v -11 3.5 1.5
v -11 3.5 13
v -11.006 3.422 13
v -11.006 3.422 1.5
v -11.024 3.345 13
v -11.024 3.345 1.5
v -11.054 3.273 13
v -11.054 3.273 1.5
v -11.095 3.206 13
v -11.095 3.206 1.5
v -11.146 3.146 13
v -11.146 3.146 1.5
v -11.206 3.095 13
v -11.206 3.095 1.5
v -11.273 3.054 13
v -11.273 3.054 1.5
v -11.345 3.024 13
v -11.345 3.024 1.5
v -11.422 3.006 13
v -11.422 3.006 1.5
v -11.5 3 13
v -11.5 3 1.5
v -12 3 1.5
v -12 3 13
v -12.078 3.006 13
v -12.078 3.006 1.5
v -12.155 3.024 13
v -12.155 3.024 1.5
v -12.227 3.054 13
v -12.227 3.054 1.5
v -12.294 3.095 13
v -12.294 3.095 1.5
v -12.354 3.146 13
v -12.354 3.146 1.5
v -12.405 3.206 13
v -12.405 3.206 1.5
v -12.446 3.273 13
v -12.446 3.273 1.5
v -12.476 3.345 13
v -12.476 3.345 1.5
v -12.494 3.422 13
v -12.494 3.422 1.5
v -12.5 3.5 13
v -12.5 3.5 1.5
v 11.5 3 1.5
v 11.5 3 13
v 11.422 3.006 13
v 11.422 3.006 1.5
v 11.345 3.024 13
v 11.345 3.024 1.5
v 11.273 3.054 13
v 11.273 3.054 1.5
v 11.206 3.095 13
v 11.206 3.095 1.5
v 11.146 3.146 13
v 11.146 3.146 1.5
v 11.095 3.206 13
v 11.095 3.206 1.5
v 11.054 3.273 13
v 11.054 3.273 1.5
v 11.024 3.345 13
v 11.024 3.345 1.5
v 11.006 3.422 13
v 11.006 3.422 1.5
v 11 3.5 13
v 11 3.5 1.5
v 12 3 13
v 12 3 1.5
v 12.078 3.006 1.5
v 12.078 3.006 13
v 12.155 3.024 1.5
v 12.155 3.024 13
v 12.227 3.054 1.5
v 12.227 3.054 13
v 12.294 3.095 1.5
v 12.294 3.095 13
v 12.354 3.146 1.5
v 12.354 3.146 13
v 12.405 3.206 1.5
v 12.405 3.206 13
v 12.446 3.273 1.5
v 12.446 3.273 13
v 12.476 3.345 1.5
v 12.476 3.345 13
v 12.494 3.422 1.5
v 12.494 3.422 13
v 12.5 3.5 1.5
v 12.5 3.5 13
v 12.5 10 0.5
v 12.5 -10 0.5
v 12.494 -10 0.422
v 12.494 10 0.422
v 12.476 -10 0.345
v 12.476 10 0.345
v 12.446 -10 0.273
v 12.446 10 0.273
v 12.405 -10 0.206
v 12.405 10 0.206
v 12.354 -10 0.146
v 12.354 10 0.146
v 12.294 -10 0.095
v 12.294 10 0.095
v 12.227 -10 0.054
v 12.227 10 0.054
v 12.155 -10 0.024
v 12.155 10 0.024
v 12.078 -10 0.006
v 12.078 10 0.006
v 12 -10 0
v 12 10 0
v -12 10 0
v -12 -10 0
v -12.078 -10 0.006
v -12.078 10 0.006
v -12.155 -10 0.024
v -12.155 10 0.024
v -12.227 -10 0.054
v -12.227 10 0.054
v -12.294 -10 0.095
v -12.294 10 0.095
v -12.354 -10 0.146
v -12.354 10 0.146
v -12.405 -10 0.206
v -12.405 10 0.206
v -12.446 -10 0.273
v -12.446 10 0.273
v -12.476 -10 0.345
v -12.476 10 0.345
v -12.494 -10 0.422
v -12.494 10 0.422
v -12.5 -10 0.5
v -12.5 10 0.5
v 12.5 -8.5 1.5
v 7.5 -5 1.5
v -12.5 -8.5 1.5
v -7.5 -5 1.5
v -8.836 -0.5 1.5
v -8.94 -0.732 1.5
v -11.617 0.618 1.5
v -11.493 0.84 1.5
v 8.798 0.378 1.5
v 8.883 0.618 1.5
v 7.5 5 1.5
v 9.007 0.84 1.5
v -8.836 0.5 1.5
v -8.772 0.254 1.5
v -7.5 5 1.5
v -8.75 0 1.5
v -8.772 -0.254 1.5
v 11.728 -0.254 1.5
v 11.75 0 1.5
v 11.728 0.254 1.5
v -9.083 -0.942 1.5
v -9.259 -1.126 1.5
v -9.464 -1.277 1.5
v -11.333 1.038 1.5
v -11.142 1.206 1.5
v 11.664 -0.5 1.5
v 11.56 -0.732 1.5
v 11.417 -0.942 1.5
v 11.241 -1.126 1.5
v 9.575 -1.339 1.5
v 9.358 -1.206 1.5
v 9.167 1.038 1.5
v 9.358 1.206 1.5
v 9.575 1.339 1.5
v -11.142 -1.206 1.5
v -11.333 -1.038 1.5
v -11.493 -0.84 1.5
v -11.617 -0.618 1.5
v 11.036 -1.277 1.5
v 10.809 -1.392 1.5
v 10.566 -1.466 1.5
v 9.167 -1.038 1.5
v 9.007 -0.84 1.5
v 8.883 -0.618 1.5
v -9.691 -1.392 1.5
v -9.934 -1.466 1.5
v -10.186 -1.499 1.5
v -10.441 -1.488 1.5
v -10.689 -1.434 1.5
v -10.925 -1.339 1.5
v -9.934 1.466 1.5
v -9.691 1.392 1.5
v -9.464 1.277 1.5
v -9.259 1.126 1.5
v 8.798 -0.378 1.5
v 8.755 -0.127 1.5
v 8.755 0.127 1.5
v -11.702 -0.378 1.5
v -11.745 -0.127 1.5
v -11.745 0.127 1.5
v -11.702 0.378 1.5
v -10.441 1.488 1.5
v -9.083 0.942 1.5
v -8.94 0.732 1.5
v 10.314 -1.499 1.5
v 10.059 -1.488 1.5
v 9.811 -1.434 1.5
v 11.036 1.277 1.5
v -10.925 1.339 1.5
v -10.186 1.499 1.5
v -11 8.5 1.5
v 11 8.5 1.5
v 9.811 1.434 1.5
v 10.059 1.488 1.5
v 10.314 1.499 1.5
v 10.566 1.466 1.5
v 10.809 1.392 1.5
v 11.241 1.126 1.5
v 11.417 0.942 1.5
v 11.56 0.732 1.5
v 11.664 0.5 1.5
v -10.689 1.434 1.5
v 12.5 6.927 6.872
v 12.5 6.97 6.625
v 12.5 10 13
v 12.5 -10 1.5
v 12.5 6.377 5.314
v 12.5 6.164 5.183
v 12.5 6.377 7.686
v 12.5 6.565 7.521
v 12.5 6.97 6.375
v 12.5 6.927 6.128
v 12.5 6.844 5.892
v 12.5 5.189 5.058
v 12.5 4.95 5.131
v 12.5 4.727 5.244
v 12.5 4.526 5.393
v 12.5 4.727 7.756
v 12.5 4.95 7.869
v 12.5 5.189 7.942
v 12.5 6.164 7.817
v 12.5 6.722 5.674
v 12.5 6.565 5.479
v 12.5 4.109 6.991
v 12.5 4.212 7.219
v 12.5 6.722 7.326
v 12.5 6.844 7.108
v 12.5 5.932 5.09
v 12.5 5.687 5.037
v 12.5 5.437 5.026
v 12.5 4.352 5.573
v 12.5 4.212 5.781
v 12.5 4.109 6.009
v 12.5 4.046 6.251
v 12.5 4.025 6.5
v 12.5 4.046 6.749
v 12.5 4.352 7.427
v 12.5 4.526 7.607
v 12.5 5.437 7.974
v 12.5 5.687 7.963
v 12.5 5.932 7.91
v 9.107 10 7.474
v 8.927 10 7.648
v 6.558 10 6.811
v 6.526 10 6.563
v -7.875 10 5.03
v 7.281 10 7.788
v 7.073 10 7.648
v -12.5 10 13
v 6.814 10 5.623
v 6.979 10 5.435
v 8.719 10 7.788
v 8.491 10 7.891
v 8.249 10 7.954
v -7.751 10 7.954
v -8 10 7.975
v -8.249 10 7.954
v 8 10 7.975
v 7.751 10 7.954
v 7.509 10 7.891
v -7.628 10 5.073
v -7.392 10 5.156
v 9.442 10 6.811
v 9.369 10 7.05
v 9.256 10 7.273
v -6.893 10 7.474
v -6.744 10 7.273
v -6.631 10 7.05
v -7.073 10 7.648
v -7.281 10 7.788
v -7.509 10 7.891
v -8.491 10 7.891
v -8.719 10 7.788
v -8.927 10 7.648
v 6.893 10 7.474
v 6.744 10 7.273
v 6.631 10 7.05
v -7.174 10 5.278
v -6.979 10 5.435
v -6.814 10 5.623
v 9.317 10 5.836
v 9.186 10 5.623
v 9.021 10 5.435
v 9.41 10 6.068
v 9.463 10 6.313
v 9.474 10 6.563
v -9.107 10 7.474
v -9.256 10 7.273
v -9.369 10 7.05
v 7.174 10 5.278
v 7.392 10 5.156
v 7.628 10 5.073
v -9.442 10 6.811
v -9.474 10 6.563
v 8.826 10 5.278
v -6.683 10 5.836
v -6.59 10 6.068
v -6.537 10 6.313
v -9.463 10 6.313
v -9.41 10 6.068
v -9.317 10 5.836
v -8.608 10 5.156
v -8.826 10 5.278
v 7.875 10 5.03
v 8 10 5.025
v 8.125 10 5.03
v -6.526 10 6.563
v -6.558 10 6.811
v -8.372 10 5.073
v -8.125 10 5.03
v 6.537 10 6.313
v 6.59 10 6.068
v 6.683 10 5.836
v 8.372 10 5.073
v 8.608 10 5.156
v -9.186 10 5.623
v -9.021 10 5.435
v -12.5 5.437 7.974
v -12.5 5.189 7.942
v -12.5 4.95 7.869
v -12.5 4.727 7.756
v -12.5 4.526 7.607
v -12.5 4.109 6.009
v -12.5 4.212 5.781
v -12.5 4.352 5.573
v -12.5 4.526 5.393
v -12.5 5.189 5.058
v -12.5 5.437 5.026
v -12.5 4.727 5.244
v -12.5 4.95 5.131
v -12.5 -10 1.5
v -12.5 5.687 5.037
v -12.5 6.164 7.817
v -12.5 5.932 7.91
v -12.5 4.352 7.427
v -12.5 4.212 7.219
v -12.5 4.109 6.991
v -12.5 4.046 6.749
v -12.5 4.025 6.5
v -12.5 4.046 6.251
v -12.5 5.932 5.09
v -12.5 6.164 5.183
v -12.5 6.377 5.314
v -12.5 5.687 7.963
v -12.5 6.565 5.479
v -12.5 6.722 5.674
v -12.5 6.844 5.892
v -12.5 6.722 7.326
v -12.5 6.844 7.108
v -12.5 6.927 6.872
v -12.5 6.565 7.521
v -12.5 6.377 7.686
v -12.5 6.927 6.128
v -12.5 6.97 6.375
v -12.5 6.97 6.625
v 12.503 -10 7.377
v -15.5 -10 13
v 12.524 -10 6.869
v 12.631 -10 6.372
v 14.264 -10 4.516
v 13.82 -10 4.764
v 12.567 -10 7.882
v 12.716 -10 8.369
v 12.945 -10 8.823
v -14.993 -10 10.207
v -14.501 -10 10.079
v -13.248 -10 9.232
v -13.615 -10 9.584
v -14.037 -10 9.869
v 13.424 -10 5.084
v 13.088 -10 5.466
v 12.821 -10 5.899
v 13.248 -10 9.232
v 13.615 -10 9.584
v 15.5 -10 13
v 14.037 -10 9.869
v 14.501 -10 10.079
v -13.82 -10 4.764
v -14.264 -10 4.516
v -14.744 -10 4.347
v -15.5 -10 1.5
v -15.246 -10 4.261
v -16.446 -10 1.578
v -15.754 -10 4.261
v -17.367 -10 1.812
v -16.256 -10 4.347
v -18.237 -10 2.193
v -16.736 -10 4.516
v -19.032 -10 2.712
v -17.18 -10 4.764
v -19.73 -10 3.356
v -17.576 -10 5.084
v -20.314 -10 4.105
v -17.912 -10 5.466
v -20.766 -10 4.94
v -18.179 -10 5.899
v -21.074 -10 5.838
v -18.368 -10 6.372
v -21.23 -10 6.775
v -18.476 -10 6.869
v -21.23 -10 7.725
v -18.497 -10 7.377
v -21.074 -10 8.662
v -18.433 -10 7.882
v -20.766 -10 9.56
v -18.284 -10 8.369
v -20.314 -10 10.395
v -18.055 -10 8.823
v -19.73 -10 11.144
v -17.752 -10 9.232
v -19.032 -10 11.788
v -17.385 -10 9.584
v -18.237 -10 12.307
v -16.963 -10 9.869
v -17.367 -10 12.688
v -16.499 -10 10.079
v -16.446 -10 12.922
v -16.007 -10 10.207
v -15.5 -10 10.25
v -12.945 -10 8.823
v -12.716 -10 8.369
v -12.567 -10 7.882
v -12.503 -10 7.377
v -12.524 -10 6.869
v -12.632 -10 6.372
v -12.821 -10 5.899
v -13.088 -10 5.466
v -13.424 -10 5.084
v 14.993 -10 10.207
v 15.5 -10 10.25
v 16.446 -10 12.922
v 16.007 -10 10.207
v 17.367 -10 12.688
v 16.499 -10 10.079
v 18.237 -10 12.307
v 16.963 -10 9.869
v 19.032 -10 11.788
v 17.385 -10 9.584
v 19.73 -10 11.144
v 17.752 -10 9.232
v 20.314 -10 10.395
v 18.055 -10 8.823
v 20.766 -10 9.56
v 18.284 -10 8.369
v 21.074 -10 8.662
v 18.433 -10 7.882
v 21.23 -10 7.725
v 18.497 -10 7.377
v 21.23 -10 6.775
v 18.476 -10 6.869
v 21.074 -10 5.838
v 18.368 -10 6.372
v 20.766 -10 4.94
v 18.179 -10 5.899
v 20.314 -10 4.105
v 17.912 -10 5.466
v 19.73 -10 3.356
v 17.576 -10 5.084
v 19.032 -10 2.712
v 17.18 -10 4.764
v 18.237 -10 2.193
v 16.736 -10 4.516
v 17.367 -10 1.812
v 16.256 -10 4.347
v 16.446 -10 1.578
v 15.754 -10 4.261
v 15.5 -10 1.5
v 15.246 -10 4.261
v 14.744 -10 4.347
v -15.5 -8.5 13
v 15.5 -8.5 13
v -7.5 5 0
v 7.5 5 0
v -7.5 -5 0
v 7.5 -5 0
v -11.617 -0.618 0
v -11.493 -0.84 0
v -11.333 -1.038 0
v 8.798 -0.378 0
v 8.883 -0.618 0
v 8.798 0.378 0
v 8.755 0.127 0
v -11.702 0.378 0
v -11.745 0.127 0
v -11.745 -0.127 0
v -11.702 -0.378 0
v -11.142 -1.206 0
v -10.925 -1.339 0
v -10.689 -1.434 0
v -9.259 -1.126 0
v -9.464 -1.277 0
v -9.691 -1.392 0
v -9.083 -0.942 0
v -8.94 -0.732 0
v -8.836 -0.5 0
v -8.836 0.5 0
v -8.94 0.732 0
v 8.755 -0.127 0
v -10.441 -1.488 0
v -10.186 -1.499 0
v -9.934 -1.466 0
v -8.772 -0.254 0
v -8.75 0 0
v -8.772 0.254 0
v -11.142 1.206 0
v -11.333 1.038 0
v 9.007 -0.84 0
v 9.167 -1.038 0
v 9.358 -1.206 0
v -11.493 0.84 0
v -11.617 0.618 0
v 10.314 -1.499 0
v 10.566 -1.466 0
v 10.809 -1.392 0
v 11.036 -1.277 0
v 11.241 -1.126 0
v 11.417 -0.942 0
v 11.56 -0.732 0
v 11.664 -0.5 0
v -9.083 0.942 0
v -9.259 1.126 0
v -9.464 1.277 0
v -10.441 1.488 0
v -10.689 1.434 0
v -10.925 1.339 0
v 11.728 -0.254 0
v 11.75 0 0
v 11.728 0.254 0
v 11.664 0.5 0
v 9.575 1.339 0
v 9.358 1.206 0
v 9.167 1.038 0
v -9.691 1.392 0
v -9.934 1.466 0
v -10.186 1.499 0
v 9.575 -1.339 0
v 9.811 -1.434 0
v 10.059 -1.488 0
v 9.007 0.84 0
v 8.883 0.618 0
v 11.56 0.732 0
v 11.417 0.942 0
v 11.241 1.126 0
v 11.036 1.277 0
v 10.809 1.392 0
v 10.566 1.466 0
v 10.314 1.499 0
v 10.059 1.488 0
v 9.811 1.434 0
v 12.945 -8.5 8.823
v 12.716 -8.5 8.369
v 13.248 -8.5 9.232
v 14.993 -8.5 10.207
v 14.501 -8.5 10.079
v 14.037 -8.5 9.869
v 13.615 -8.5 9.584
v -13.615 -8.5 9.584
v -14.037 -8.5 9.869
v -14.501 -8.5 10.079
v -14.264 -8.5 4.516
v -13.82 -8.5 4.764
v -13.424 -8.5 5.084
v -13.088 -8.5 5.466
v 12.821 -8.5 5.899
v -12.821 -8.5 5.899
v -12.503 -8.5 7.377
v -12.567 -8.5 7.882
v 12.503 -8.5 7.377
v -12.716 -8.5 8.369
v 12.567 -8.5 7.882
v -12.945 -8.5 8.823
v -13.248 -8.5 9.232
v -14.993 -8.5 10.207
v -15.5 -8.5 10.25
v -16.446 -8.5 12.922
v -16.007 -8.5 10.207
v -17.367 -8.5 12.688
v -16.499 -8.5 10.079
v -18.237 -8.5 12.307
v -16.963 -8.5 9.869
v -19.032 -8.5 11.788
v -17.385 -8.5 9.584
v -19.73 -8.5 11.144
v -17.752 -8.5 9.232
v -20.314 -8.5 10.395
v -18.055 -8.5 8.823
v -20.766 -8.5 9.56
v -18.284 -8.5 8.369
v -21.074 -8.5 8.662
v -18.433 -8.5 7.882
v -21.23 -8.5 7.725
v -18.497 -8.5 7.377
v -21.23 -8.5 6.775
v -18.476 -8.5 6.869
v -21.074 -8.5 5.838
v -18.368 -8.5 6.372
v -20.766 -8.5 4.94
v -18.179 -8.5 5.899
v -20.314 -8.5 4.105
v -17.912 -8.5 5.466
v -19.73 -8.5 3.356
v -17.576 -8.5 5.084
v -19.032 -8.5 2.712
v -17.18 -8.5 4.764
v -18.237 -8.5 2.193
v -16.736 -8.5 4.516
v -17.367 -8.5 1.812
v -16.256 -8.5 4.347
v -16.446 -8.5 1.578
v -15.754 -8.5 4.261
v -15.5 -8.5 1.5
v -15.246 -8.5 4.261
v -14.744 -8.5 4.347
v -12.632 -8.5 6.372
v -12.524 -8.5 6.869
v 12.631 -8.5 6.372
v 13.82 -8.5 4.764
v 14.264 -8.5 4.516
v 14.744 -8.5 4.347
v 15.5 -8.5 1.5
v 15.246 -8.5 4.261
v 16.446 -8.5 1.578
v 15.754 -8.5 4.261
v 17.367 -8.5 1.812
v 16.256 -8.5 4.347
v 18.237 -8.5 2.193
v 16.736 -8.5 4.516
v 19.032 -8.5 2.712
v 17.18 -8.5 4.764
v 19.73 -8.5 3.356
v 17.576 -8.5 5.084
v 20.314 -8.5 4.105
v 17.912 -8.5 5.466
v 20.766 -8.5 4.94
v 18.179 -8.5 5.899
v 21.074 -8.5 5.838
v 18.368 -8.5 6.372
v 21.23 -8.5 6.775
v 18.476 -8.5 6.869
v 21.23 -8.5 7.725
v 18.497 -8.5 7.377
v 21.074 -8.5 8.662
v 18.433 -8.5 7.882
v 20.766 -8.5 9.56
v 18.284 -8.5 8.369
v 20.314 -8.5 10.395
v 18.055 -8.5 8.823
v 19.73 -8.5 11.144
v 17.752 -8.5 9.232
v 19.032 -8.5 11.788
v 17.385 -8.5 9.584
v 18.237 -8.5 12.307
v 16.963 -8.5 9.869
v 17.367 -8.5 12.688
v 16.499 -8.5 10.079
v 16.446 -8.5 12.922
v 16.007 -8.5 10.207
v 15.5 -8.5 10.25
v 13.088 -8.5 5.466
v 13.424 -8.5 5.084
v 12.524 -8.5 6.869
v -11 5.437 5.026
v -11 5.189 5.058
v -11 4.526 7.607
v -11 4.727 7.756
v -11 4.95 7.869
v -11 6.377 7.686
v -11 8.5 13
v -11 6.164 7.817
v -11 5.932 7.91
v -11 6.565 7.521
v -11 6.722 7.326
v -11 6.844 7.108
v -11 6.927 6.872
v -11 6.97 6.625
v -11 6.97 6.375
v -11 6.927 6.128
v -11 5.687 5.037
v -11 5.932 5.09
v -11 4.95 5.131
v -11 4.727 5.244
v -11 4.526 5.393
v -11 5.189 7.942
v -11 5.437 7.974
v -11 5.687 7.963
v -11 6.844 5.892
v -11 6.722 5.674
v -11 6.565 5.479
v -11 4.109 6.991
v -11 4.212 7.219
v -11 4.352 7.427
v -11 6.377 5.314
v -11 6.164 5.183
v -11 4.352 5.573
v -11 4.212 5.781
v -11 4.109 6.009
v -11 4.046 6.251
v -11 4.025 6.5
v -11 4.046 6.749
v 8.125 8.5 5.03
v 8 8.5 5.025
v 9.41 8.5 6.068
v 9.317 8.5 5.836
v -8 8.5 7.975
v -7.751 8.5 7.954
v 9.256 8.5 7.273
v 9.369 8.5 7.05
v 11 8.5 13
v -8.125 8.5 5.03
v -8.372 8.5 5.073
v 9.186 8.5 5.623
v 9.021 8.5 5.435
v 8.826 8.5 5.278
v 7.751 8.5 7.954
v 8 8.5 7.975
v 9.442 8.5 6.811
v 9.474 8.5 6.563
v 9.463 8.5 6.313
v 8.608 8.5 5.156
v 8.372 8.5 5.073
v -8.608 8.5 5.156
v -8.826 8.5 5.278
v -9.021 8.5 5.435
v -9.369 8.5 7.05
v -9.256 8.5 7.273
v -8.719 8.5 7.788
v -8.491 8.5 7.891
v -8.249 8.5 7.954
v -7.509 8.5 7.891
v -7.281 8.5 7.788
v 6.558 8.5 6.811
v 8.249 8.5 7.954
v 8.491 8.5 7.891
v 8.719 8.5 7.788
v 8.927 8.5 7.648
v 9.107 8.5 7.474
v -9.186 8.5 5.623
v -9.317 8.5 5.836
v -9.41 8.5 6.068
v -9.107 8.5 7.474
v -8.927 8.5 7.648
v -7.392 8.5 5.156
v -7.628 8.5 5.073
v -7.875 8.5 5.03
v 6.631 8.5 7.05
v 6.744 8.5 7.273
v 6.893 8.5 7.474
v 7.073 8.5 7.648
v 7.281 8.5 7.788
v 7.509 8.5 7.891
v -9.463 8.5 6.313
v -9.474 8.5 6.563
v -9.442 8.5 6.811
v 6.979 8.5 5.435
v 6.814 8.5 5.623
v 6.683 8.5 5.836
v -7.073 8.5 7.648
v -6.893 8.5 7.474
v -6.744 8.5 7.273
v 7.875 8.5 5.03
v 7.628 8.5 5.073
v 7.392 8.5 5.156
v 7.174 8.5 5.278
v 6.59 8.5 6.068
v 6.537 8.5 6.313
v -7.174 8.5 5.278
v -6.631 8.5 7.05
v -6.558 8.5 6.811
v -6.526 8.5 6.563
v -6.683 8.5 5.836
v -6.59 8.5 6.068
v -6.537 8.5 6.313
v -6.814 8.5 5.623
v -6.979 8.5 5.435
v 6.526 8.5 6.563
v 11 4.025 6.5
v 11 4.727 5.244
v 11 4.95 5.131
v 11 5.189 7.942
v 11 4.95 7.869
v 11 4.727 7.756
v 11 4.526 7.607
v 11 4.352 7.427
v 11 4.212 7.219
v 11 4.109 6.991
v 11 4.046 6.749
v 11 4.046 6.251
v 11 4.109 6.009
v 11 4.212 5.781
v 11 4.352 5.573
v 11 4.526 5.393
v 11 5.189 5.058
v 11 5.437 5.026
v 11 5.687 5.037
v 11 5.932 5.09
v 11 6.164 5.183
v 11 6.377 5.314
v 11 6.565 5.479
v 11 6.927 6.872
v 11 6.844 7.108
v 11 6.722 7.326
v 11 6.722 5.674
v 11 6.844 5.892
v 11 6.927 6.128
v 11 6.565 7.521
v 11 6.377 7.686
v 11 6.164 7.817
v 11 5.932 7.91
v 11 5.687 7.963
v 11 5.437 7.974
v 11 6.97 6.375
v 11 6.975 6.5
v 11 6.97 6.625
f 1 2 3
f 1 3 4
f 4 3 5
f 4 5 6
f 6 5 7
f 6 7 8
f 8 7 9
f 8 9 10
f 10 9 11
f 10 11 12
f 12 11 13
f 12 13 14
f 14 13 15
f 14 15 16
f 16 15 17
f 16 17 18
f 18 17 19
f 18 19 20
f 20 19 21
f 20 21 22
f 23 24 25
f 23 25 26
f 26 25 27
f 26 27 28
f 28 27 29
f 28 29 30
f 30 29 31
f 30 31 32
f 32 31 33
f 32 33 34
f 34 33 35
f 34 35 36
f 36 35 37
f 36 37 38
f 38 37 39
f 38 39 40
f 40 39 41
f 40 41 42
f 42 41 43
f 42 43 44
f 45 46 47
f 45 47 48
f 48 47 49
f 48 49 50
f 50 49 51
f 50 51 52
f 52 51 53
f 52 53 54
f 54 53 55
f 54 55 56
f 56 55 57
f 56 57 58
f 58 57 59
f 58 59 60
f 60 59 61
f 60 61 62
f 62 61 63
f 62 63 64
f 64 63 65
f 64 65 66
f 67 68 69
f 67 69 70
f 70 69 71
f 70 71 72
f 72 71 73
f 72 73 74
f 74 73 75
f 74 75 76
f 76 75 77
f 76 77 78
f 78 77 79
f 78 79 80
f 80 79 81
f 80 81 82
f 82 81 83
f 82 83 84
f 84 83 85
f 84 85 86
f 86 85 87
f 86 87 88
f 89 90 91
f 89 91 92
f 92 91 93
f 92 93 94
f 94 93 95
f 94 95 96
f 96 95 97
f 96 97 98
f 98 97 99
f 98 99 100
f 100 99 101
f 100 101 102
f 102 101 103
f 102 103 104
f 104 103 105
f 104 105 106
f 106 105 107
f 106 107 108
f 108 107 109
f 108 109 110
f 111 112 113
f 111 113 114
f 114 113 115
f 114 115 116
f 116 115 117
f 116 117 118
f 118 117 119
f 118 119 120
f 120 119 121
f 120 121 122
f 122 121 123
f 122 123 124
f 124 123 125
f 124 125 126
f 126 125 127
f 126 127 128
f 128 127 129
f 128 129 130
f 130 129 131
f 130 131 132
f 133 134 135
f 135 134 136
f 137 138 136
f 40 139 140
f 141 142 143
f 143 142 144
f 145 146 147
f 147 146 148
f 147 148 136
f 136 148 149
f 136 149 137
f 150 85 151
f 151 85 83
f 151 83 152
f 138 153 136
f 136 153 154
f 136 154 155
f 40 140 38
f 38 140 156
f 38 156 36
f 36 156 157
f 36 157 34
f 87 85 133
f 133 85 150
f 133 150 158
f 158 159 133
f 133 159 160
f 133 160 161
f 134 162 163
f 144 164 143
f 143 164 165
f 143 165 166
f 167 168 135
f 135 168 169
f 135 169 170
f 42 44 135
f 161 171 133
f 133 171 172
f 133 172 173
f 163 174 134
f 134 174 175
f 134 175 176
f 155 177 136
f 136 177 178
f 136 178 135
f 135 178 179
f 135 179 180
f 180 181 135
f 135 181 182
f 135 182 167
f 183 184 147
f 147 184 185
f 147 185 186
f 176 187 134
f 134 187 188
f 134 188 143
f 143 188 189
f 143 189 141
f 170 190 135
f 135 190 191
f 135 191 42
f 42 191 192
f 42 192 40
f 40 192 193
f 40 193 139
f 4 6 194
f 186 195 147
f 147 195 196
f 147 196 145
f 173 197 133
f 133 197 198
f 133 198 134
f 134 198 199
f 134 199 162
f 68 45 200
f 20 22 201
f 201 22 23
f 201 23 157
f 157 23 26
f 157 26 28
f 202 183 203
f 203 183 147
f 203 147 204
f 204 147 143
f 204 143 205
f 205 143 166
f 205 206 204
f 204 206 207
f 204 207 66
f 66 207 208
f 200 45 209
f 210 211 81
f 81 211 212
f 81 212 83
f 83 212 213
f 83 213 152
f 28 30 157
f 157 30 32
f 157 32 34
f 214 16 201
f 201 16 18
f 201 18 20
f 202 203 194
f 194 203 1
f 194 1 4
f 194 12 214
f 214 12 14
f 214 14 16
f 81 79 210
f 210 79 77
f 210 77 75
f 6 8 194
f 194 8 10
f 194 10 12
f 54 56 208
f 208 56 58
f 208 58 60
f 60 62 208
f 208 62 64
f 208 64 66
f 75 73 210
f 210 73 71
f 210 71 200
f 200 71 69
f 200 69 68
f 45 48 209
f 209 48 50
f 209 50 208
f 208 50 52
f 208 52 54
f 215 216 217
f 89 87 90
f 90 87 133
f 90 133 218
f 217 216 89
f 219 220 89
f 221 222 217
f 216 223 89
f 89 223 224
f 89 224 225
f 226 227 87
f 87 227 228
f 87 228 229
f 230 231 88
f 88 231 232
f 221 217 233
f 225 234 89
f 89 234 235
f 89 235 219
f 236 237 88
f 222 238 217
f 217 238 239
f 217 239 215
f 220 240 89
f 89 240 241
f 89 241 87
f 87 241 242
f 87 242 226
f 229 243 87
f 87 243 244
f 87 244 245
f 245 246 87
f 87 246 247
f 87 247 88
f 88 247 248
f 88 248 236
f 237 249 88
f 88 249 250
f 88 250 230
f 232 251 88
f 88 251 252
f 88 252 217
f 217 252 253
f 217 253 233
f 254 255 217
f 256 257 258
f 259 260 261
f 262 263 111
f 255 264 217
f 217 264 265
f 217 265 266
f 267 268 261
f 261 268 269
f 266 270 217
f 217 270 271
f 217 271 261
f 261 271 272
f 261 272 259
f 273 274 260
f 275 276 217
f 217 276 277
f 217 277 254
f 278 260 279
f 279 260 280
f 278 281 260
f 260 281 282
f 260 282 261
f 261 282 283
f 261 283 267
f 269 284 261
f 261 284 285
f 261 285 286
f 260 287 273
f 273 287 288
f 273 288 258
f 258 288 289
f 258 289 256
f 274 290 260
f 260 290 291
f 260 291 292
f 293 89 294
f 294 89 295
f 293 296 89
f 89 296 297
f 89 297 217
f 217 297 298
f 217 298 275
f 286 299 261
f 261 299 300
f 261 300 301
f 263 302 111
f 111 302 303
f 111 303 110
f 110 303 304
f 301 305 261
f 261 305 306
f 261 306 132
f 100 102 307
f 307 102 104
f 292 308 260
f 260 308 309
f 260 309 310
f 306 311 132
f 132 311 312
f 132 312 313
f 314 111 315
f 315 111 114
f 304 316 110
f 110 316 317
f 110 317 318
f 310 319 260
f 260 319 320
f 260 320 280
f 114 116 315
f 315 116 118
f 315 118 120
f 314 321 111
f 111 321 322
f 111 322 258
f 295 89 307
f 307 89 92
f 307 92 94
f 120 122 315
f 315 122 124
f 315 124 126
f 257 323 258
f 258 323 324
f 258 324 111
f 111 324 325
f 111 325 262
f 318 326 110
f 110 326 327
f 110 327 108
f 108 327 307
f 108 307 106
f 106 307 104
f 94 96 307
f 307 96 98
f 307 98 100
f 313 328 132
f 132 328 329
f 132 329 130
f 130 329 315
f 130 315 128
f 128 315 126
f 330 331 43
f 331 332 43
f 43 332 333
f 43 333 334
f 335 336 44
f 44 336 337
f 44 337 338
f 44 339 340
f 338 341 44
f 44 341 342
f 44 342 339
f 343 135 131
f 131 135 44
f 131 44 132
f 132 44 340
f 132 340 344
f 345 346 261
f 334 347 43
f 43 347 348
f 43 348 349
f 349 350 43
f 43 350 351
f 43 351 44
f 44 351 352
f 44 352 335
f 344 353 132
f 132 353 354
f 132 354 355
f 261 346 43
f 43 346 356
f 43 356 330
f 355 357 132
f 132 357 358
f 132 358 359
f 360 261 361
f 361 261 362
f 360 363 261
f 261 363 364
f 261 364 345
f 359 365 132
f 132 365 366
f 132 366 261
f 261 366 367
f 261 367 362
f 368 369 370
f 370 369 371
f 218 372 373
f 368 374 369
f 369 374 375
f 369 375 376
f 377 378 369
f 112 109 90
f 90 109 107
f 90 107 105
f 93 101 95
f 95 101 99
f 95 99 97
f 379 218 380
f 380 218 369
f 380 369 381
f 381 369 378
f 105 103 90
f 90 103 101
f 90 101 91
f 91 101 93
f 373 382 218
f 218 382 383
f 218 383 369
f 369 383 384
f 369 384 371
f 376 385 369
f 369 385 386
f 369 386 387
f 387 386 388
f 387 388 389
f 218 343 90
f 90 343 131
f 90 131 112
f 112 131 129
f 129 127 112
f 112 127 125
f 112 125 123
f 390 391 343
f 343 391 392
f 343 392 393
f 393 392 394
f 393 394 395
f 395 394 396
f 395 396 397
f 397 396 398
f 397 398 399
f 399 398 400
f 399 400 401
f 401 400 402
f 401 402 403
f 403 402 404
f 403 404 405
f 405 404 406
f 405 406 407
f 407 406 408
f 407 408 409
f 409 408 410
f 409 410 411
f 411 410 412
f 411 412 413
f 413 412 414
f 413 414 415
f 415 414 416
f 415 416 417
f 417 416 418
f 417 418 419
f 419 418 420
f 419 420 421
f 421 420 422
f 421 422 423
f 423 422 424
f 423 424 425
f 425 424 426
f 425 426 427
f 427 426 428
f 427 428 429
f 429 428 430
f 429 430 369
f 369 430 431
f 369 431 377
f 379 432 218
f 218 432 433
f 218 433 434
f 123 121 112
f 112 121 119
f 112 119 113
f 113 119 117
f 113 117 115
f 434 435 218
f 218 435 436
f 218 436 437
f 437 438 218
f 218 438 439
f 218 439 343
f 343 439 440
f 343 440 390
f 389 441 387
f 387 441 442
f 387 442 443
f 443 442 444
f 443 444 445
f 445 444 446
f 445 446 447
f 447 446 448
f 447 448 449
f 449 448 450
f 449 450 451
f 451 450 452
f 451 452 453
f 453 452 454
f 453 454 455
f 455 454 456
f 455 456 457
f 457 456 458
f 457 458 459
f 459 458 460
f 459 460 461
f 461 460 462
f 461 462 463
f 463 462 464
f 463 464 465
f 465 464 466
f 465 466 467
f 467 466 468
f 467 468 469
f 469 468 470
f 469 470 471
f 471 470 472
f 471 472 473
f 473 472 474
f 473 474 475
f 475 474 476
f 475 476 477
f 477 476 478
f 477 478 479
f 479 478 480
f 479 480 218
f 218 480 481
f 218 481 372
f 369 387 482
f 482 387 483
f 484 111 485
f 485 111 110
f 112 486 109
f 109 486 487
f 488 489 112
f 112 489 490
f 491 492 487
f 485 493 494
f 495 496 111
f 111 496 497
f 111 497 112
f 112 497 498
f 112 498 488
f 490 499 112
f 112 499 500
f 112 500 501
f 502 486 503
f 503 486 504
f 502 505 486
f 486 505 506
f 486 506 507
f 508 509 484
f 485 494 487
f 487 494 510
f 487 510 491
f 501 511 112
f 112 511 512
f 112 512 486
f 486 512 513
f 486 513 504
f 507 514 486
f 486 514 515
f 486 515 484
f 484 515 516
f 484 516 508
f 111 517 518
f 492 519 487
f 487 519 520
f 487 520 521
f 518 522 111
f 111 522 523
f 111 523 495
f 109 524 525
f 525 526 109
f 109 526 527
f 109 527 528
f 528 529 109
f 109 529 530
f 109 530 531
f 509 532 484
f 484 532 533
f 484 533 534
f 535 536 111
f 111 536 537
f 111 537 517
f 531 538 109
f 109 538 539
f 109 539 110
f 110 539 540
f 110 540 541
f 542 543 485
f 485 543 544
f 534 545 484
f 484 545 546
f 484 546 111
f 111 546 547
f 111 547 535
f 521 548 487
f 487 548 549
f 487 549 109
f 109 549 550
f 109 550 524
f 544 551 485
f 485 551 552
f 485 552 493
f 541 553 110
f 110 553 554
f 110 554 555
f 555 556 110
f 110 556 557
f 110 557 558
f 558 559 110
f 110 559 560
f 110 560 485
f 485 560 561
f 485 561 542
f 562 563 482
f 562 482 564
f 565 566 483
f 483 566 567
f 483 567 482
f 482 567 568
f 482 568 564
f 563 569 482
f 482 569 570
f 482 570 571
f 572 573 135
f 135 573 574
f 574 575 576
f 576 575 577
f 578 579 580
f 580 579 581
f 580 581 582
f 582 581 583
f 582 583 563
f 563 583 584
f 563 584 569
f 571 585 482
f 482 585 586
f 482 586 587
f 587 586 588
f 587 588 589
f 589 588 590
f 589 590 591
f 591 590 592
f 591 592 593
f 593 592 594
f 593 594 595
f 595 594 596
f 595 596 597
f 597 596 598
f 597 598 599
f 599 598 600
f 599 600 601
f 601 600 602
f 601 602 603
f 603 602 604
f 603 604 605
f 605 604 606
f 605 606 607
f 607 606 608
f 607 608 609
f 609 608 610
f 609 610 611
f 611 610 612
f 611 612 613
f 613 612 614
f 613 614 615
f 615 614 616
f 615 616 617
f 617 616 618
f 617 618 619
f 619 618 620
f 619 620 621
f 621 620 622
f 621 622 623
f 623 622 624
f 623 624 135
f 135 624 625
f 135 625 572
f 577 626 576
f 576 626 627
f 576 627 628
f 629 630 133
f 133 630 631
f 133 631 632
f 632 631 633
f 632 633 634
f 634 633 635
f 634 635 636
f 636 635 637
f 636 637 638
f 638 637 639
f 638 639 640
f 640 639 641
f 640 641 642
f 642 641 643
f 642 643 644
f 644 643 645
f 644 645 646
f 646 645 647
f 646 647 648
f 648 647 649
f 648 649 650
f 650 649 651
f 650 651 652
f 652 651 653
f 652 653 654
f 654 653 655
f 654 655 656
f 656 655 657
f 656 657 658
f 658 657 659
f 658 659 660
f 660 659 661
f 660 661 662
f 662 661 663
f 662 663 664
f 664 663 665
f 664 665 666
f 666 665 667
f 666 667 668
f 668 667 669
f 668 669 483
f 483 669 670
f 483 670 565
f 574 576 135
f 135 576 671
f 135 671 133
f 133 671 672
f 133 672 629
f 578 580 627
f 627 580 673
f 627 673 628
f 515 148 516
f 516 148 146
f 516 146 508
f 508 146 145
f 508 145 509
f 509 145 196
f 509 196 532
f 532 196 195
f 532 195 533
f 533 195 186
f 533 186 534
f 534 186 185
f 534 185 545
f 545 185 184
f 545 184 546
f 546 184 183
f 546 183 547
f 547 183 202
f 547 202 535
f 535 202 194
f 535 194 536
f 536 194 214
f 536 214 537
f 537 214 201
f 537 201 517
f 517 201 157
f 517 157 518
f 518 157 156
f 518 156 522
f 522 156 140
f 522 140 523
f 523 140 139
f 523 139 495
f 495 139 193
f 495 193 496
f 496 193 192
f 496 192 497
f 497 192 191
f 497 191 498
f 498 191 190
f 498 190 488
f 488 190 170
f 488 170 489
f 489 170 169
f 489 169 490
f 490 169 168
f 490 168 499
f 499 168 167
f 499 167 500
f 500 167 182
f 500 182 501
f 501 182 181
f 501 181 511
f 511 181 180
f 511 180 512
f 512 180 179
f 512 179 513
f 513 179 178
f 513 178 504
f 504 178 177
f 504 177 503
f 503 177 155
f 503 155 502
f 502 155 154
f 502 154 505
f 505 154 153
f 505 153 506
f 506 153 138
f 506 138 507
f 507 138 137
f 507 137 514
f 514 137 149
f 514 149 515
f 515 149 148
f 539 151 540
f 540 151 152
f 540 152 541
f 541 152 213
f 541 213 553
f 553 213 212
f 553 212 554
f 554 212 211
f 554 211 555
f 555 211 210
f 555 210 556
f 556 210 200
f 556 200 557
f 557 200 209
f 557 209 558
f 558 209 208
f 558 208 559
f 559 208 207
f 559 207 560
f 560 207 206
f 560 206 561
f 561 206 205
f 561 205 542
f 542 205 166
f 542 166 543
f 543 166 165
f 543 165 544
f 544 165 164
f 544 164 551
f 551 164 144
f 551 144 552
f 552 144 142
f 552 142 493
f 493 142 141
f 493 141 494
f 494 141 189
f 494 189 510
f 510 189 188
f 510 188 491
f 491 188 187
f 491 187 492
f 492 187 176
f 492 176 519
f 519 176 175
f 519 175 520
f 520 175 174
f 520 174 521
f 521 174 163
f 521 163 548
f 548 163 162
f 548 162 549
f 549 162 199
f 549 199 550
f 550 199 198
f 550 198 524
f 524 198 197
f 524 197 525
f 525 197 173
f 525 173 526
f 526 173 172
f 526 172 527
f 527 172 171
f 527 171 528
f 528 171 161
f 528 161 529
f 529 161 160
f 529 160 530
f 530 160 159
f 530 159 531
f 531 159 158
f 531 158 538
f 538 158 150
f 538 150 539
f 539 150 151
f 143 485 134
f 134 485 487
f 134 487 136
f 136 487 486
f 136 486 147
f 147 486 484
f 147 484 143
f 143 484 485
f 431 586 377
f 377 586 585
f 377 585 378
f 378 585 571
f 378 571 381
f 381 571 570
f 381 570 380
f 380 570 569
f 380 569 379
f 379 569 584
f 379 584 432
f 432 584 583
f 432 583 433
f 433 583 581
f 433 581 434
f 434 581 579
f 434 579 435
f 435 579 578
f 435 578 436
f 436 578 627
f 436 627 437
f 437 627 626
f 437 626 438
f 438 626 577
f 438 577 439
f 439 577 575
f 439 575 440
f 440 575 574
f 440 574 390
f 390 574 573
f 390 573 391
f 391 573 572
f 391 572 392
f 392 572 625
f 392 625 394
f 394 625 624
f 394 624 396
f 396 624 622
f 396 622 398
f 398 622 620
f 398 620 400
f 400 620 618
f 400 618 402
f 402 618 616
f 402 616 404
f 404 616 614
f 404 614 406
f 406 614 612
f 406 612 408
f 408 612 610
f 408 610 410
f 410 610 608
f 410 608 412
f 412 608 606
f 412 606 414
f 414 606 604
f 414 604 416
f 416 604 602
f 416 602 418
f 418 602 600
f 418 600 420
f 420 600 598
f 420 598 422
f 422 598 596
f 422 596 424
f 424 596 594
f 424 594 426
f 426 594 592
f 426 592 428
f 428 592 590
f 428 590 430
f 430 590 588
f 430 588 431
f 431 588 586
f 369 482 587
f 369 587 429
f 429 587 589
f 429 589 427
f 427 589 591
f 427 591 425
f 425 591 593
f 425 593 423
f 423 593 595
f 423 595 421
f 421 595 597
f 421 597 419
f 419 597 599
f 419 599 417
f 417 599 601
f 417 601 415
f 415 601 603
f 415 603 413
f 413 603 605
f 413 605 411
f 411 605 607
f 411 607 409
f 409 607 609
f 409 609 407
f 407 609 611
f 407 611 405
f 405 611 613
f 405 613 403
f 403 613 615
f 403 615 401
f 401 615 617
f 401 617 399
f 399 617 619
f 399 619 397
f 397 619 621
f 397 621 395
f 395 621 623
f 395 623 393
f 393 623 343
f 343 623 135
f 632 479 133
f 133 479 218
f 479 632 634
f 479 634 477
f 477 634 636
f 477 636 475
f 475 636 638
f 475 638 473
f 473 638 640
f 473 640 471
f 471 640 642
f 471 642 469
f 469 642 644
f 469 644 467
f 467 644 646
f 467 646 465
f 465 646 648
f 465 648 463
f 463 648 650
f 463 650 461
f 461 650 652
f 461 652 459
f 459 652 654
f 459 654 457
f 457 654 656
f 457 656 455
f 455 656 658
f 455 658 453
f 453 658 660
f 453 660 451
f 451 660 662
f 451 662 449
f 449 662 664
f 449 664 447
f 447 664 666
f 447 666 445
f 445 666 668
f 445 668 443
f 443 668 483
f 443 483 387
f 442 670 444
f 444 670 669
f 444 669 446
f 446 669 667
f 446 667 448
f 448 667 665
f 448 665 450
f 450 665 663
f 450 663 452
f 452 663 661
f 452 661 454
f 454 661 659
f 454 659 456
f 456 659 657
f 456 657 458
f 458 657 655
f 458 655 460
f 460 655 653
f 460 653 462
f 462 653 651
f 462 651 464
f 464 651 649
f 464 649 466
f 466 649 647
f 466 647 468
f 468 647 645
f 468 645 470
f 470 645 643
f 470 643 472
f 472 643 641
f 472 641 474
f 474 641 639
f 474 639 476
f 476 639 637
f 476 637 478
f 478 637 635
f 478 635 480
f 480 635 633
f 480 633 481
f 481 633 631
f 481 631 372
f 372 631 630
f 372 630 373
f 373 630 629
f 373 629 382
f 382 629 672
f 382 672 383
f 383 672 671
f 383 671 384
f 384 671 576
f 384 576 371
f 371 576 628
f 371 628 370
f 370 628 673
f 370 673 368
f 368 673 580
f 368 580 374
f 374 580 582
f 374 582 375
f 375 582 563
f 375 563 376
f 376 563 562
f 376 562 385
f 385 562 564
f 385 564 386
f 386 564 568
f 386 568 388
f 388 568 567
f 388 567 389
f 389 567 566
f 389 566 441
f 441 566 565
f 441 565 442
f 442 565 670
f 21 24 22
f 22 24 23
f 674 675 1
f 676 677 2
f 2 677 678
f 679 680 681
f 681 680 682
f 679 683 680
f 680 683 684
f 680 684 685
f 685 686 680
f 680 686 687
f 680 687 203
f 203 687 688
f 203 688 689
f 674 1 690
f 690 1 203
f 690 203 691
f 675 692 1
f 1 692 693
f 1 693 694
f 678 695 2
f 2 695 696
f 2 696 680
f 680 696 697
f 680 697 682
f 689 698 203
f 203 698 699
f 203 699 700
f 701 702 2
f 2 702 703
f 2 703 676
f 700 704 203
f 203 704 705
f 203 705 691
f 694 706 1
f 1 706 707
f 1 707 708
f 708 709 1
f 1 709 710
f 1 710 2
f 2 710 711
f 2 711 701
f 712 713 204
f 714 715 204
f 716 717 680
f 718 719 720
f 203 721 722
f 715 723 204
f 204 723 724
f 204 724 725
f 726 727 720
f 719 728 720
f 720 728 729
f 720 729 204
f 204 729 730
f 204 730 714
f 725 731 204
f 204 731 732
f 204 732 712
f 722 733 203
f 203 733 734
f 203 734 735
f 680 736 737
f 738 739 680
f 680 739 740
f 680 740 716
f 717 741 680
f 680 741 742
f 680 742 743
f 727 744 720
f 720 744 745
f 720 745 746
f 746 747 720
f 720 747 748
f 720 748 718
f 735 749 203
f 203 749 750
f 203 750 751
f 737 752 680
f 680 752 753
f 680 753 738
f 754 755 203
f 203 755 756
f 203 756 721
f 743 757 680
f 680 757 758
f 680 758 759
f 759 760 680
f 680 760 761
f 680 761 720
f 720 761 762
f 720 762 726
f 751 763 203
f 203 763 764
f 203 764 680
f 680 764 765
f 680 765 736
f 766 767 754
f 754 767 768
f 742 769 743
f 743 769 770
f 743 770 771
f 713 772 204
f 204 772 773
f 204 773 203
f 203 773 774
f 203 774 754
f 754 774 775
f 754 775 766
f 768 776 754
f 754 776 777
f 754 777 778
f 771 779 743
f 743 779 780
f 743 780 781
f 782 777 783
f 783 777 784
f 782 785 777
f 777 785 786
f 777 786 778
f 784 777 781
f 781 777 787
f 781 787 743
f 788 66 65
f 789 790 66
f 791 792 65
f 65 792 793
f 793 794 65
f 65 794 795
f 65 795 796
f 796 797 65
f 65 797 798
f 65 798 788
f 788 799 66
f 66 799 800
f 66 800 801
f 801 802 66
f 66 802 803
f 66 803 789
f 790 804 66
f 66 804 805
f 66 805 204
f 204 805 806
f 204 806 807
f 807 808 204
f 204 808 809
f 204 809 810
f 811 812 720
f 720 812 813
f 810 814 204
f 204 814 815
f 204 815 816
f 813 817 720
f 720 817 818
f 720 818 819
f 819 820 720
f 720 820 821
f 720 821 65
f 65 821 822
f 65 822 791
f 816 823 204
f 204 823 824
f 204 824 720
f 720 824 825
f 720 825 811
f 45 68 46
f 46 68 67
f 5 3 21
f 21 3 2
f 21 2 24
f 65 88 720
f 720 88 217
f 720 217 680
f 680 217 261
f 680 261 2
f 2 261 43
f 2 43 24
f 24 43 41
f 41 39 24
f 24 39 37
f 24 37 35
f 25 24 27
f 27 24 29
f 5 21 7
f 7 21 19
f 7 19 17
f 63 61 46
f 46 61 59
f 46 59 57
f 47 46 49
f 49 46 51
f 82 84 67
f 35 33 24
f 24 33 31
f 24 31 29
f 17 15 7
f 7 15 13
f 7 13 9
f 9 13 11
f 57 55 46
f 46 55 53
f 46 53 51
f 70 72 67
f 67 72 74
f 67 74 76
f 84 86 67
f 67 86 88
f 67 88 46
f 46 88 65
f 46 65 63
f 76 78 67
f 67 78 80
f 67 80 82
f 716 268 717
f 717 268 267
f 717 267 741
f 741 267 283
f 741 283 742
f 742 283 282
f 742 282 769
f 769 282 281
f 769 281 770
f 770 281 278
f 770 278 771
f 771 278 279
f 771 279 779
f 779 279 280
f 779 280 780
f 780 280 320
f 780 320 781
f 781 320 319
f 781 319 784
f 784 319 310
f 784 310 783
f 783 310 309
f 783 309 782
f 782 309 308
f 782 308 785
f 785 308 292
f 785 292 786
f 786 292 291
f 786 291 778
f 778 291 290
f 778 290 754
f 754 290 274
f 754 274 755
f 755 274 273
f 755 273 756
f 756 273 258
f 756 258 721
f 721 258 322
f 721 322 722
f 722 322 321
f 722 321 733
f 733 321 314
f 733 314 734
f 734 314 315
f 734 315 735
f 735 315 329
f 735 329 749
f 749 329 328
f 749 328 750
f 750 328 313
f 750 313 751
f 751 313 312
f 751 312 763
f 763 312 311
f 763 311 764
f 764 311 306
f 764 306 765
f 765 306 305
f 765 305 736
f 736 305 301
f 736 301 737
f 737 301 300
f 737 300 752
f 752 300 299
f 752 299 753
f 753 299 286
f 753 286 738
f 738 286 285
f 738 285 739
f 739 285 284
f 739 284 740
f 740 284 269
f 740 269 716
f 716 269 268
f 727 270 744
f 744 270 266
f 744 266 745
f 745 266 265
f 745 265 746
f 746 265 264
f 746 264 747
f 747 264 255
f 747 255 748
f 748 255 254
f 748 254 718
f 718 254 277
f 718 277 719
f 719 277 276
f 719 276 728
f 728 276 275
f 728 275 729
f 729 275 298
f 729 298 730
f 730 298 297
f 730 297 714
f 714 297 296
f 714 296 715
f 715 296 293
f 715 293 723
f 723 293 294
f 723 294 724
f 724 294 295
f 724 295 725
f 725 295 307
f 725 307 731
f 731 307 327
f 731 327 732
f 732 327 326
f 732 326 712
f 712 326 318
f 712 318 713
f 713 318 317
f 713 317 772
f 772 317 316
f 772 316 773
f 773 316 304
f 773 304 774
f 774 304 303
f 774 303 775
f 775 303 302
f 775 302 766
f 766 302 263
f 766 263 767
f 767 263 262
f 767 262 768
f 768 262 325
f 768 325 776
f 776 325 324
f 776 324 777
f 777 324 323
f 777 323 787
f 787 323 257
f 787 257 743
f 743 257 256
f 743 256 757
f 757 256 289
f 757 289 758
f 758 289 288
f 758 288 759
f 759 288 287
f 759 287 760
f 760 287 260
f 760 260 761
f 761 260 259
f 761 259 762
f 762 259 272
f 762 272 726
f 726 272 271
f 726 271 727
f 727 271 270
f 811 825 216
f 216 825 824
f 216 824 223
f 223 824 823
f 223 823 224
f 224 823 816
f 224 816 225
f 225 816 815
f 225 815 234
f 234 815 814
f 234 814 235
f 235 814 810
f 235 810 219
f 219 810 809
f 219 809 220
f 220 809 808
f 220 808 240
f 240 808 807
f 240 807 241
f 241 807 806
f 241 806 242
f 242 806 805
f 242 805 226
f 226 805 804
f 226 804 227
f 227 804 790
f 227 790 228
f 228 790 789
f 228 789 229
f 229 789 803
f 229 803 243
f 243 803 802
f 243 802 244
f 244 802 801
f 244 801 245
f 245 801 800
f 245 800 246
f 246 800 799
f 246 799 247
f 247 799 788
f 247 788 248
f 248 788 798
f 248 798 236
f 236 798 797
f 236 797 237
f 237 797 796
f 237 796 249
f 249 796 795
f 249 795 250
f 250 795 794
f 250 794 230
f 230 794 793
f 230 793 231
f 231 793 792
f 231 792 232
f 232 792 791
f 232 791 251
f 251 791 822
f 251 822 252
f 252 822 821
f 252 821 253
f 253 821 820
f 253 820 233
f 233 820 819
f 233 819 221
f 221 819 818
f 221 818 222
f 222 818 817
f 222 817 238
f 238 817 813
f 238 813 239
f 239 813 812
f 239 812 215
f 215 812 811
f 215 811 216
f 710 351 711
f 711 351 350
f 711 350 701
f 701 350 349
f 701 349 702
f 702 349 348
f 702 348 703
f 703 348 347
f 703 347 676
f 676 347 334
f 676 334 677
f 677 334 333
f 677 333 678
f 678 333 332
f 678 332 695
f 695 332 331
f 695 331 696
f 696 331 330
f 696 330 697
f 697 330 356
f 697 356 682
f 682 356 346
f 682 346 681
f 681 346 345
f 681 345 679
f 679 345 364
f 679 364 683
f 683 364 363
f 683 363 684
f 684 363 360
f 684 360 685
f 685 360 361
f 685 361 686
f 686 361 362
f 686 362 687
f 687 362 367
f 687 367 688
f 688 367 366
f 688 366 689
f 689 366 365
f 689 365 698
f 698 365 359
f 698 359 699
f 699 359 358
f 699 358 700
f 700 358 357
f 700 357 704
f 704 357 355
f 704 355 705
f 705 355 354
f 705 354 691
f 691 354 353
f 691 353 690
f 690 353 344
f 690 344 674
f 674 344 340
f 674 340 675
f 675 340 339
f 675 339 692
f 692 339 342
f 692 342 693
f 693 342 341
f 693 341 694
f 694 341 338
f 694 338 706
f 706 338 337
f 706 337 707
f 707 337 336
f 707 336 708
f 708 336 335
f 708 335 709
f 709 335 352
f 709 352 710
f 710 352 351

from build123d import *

# Parameters (mm, degrees)
SKETCH_1_W          = 25
SKETCH_1_H          = 20
EXTRUDE_1_DEPTH     = 13
SHELL_7_T           = -1.5
SKETCH_3_R          = 1.5
CUT_EXTRUDE_1_DEPTH = 5
SKETCH_4_W          = 15
SKETCH_4_H          = 10
CUT_EXTRUDE_2_DEPTH = 2
SKETCH_6_W          = 12.730573974
SKETCH_6_H          = 22.360557323
CUT_EXTRUDE_5_DEPTH = 38.5
EXTRUDE_START       = -1.5
EXTRUDE_4_OUTLINE_R = 3
EXTRUDE_4_DEPTH     = 1.5
EXTRUDE_5_DEPTH     = 11.5
SKETCH_12_R         = 1.475
CUT_EXTRUDE_6_DEPTH = 1.5
SKETCH_14_R         = 1.475
CUT_EXTRUDE_7_DEPTH = 27
FILLET_2_R          = 0.5
FILLET_3_R          = 0.5
FILLET_4_R          = 0.5
FILLET_5_R          = 0.5
FILLET_6_R          = 0.5
FILLET_7_R          = 0.5


with BuildPart() as part:
    # 草图1 → 凸台-拉伸1 (new body)
    with BuildSketch(Plane.XY):
        Rectangle(SKETCH_1_W, SKETCH_1_H)
    extrude(amount=EXTRUDE_1_DEPTH)

    # 抽壳7
    shell_7_openings = [part.faces().sort_by_distance(p)[0] for p in [
        (0, 0, 13),
    ]]
    offset(amount=SHELL_7_T, openings=shell_7_openings, kind=Kind.INTERSECTION)

    # 草图3 → 切除-拉伸1 (cut)
    with BuildSketch(Plane.XY.offset(1.5)):
        with Locations((-10.25, 0)):
            Circle(SKETCH_3_R)
        with Locations((10.25, 0)):
            Circle(SKETCH_3_R)
    extrude(amount=-CUT_EXTRUDE_1_DEPTH, mode=Mode.SUBTRACT)

    # 草图4 → 切除-拉伸2 (cut)
    with BuildSketch(Plane.XY.offset(1.5)):
        Rectangle(SKETCH_4_W, SKETCH_4_H)
    extrude(amount=-CUT_EXTRUDE_2_DEPTH, mode=Mode.SUBTRACT)

    # 草图6 → 切除-拉伸5 (cut, symmetric)
    with BuildSketch(Plane(origin=(-11, 0, 0), x_dir=(0, 0, -1), z_dir=(1, 0, 0))):
        with Locations((-7.865286987, 2.680278662)):
            Rectangle(SKETCH_6_W, SKETCH_6_H)
    extrude(amount=CUT_EXTRUDE_5_DEPTH, both=True, mode=Mode.SUBTRACT)

    # 凸台-拉伸4: read off the stored shape, not the designer's step
    # 凸台-拉伸4 outline → 凸台-拉伸4 (add)
    with BuildSketch(Plane(origin=(0, -8.5, 0), x_dir=(1, 0, 0), z_dir=(0, 1, 0)).offset(EXTRUDE_START)):
        with BuildLine():
            Line((15.5, -1.5), (-15.5, -1.5))
            ThreePointArc((-15.5, -1.5), (-21.25, -7.25), (-15.5, -13))
            Line((-15.5, -13), (15.5, -13))
            ThreePointArc((15.5, -13), (21.25, -7.25), (15.5, -1.5))
        make_face()
        with Locations((-15.5, -7.25)):
            Circle(EXTRUDE_4_OUTLINE_R, mode=Mode.SUBTRACT)
        with Locations((15.5, -7.25)):
            Circle(EXTRUDE_4_OUTLINE_R, mode=Mode.SUBTRACT)
    extrude(amount=EXTRUDE_4_DEPTH)

    # 草图11 → 凸台-拉伸5 (add)
    with BuildSketch(Plane.XY.offset(1.5)):
        Polygon((-11, 8.5), (11, 8.5), (11, 3), (12.5, 3), (12.5, 10), (-12.5, 10), (-12.5, 3), (-11, 3), align=None)
    extrude(amount=EXTRUDE_5_DEPTH)

    # 草图12 → 切除-拉伸6 (cut)
    with BuildSketch(Plane(origin=(0, 10, 0), x_dir=(1, 0, 0), z_dir=(0, 1, 0))):
        with Locations(Location((-8, -6.5, 0), (0, 0, 270))):
            Circle(SKETCH_12_R)
        with Locations(Location((8, -6.5, 0), (0, 0, 90))):
            Circle(SKETCH_12_R)
    extrude(amount=-CUT_EXTRUDE_6_DEPTH, mode=Mode.SUBTRACT)

    # 草图14 → 切除-拉伸7 (cut)
    with BuildSketch(Plane.ZY.offset(12.5)):
        with Locations(Location((6.5, 5.5, 0), (0, 0, 270))):
            Circle(SKETCH_14_R)
    extrude(amount=-CUT_EXTRUDE_7_DEPTH, mode=Mode.SUBTRACT)

    # 圆角2
    fillet_2_edges = [part.edges().sort_by_distance(p)[0] for p in [
        (-12.5, 0, 0),
    ]]
    fillet(fillet_2_edges, radius=FILLET_2_R)

    # 圆角3
    fillet_3_edges = [part.edges().sort_by_distance(p)[0] for p in [
        (12.5, 0, 0),
    ]]
    fillet(fillet_3_edges, radius=FILLET_3_R)

    # 圆角4
    fillet_4_edges = [part.edges().sort_by_distance(p)[0] for p in [
        (12.5, 3, 7.25),
    ]]
    fillet(fillet_4_edges, radius=FILLET_4_R)

    # 圆角5
    fillet_5_edges = [part.edges().sort_by_distance(p)[0] for p in [
        (11, 3, 7.25),
    ]]
    fillet(fillet_5_edges, radius=FILLET_5_R)

    # 圆角6
    fillet_6_edges = [part.edges().sort_by_distance(p)[0] for p in [
        (-12.5, 3, 7.25),
    ]]
    fillet(fillet_6_edges, radius=FILLET_6_R)

    # 圆角7
    fillet_7_edges = [part.edges().sort_by_distance(p)[0] for p in [
        (-11, 3, 7.25),
    ]]
    fillet(fillet_7_edges, radius=FILLET_7_R)


solid = part.part
